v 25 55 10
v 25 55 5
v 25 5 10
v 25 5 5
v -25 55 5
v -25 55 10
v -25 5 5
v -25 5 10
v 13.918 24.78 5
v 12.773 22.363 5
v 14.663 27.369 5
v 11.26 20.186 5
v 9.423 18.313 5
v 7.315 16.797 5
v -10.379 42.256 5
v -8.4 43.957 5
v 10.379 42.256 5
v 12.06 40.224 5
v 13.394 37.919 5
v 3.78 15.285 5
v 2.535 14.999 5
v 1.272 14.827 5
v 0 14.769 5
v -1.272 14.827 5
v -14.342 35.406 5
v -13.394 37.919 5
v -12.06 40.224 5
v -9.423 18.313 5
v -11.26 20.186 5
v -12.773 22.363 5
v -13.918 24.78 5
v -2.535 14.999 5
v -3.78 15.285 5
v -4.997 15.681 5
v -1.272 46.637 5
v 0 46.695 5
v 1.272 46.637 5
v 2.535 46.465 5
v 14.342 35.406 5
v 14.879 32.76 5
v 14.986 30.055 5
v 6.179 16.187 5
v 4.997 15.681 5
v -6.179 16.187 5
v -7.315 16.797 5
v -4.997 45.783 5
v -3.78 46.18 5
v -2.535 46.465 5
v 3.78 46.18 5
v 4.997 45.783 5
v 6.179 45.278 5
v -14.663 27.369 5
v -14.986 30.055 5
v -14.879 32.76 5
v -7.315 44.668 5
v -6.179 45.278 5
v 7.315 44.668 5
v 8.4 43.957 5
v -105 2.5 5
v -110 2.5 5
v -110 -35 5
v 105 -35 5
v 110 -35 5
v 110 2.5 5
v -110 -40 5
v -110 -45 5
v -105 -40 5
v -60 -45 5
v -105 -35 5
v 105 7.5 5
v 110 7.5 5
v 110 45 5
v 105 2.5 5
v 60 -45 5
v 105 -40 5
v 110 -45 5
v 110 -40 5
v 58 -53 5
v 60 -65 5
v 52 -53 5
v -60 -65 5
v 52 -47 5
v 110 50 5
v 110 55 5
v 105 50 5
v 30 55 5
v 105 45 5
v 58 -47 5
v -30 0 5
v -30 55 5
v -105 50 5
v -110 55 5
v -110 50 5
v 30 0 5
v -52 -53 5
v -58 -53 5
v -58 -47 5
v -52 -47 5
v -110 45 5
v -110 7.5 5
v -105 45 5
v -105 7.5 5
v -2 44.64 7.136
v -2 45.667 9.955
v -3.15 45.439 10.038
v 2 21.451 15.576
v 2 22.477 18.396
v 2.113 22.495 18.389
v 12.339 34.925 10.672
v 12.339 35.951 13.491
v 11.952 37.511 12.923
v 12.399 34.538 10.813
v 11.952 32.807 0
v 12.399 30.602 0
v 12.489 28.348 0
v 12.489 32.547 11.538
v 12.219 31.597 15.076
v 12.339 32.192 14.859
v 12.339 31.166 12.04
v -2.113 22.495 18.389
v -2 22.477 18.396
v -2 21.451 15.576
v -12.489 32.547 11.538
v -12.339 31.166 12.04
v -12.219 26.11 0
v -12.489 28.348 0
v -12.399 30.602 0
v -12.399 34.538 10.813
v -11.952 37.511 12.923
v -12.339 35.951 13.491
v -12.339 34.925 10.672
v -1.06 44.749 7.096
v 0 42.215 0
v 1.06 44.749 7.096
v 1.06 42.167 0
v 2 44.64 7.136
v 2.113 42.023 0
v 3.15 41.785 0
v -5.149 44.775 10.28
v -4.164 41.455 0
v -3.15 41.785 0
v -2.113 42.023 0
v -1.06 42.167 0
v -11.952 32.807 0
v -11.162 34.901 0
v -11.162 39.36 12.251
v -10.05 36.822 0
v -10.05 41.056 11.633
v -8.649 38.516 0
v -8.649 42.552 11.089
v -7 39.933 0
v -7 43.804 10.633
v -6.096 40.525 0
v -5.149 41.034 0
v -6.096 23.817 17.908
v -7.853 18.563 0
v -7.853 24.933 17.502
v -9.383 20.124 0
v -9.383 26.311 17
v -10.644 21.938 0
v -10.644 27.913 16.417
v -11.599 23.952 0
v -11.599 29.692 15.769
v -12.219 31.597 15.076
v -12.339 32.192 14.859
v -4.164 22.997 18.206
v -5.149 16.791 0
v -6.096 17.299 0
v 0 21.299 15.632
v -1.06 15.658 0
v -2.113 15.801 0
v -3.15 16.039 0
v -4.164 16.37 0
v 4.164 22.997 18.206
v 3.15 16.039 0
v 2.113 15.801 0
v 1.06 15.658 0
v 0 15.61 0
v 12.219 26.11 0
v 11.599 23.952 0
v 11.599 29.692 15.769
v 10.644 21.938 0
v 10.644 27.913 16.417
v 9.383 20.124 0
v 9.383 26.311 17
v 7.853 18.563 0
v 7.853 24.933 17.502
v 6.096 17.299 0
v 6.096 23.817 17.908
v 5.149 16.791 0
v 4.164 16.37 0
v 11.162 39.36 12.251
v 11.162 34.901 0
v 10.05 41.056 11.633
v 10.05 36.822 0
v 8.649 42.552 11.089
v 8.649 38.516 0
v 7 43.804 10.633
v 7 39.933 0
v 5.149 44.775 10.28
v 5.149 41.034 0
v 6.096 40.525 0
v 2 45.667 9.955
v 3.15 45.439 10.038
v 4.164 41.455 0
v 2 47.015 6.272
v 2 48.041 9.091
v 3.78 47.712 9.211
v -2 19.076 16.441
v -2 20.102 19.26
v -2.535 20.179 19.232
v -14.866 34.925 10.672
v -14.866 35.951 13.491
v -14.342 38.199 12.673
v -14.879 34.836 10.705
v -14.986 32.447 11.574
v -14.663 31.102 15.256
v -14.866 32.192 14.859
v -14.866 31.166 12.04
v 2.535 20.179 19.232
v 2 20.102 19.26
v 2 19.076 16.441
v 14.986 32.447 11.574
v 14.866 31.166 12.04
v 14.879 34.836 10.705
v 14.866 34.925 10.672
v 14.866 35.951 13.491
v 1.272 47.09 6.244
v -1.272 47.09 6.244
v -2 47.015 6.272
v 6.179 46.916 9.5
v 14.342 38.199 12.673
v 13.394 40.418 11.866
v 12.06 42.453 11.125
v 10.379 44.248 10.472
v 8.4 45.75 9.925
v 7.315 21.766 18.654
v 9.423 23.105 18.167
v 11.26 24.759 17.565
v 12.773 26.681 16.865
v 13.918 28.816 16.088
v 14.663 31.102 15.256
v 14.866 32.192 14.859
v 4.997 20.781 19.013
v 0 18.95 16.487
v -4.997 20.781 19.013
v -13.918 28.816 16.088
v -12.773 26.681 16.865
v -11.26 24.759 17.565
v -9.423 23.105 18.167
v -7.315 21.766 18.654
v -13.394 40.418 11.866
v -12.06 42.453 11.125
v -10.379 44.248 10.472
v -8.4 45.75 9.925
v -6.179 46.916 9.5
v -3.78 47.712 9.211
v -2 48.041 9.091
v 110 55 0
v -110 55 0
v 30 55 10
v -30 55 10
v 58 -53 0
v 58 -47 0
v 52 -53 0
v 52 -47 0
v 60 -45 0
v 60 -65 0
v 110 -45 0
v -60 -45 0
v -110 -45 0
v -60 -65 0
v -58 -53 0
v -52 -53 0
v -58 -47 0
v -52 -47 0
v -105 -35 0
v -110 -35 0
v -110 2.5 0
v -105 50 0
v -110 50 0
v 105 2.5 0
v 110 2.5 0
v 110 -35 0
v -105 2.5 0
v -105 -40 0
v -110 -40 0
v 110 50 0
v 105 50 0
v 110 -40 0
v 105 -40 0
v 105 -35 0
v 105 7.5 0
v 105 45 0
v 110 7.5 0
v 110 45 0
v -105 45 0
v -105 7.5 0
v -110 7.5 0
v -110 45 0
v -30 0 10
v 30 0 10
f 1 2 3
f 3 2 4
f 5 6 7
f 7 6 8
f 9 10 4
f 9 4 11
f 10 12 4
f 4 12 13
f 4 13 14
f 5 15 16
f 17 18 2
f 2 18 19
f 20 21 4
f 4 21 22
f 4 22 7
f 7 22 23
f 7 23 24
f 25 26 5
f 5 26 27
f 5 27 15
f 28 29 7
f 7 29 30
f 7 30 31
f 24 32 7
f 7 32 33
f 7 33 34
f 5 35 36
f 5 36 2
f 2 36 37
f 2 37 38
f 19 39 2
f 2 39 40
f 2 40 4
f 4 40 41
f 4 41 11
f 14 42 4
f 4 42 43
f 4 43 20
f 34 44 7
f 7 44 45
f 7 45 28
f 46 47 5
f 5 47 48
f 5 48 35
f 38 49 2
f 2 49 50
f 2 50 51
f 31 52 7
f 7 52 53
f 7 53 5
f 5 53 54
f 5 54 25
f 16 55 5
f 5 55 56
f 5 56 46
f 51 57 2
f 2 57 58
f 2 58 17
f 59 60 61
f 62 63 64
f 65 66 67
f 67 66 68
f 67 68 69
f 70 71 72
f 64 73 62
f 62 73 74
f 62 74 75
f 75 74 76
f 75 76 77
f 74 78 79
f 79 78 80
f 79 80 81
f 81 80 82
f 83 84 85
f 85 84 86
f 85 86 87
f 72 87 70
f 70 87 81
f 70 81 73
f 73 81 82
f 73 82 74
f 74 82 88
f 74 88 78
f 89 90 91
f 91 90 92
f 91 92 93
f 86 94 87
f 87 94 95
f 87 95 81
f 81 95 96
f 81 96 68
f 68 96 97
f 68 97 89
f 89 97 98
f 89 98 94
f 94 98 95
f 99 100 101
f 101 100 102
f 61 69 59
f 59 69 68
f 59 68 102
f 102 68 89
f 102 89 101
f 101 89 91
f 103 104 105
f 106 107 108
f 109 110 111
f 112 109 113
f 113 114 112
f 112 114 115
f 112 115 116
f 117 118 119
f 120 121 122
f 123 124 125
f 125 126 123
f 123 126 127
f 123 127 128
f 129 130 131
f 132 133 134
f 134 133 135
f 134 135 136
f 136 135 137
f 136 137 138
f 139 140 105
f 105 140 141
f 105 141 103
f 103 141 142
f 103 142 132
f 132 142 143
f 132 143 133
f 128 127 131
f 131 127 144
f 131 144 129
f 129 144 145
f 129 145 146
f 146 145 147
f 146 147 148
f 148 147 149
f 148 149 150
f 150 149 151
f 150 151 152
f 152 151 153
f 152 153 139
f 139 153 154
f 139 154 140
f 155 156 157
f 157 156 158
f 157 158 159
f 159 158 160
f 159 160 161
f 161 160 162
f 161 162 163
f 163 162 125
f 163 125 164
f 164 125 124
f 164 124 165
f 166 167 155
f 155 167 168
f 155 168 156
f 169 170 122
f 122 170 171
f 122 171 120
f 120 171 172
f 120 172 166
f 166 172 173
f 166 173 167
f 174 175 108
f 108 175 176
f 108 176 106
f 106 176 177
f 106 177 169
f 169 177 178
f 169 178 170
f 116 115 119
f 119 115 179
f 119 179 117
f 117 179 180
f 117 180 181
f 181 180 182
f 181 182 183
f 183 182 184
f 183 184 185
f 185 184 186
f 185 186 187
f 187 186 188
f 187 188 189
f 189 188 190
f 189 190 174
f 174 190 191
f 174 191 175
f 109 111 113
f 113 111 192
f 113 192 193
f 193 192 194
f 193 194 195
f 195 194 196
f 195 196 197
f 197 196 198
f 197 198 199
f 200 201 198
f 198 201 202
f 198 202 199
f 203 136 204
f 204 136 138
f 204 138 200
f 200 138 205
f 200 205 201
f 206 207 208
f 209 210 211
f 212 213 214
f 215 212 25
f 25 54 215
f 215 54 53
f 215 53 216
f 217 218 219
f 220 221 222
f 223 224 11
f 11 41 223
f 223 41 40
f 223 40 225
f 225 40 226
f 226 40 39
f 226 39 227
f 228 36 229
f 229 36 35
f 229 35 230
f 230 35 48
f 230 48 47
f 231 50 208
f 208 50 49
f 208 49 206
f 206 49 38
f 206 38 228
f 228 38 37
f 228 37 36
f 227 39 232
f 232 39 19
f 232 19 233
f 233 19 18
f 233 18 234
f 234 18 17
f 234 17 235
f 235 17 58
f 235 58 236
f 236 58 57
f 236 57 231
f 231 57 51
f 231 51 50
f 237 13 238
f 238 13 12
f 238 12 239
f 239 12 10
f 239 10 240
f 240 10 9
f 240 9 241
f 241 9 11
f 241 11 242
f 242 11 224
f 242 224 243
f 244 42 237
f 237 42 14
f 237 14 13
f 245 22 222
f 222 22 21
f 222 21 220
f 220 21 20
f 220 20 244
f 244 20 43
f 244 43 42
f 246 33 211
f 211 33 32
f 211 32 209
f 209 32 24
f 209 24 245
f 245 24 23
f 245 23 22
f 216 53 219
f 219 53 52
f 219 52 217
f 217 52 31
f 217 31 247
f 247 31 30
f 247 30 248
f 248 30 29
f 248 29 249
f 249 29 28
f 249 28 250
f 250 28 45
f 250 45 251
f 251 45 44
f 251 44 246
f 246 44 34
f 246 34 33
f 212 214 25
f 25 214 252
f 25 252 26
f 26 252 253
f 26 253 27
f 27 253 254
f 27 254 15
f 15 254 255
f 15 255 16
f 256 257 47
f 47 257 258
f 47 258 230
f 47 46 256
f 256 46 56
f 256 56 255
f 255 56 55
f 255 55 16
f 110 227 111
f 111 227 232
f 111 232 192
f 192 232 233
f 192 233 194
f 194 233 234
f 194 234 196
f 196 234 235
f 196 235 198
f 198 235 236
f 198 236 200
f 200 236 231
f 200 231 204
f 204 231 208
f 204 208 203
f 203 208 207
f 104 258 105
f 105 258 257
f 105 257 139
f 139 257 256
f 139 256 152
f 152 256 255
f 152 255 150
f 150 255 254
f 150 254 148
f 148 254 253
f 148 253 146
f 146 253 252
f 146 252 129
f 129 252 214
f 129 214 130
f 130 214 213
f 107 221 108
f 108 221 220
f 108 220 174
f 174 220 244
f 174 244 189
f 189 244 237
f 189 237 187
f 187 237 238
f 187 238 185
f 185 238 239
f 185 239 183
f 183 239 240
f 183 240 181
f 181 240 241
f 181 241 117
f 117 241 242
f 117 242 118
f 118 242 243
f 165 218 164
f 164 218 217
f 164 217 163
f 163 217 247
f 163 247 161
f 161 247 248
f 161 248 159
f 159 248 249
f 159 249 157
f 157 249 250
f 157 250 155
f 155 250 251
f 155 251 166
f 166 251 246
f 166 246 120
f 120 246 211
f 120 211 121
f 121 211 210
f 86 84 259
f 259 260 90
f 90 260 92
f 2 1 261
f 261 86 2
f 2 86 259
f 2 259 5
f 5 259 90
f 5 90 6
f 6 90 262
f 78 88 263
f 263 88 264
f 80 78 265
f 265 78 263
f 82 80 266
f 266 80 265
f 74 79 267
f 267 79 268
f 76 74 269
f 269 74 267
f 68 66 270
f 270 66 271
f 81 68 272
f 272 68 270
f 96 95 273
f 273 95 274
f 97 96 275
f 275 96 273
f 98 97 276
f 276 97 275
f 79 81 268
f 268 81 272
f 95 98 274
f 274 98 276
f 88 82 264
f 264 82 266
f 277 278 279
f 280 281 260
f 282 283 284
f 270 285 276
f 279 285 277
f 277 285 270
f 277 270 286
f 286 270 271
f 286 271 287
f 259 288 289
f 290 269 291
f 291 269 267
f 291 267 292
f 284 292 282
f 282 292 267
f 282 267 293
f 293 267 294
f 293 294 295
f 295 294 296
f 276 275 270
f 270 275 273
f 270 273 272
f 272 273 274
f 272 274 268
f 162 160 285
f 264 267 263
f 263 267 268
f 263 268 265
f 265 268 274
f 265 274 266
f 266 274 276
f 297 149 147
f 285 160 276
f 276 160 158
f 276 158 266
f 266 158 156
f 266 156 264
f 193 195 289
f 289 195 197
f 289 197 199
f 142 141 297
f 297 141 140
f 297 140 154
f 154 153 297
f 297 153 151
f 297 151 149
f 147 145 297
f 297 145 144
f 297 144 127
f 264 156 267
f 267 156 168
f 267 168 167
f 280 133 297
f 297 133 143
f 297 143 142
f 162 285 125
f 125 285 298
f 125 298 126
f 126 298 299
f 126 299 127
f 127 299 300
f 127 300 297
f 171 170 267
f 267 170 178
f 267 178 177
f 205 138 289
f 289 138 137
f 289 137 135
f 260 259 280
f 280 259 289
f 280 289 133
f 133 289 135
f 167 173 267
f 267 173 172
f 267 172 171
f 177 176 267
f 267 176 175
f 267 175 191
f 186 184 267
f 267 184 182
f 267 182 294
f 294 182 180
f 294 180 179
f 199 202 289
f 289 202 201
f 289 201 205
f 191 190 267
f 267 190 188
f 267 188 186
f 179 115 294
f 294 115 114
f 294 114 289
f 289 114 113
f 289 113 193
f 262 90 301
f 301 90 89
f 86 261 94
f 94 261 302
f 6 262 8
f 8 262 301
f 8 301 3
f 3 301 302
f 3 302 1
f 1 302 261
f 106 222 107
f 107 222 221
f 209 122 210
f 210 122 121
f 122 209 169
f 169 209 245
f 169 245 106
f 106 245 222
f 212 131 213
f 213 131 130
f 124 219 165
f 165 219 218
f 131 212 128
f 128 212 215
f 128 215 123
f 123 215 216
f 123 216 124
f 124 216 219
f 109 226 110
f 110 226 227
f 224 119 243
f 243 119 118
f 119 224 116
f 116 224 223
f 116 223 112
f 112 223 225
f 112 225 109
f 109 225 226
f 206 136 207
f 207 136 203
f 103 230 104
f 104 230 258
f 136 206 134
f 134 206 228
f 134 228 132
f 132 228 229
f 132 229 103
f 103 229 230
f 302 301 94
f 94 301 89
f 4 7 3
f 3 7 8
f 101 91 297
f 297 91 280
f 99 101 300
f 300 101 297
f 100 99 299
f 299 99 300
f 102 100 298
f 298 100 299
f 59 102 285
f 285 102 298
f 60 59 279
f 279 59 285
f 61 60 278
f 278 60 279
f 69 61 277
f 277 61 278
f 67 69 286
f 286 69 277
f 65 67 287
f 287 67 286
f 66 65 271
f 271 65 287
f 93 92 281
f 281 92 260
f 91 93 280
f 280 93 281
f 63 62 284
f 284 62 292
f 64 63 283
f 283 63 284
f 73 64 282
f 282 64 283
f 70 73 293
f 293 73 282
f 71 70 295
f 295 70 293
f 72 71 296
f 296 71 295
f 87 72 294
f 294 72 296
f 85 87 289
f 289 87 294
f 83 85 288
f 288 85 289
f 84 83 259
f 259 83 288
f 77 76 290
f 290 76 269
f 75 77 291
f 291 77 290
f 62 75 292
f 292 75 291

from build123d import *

# Parameters (mm, degrees)
SKETCH2_W            = 6
SKETCH2_H            = 6
BOSS_EXTRUDE1_DEPTH  = 5
SKETCH3_W            = 200
SKETCH3_H            = 20
CUT_EXTRUDE1_DEPTH   = 5
SKETCH6_W            = 100
SKETCH6_H            = 20
BOSS_EXTRUDE2_DEPTH  = 100
BOSS_EXTRUDE3_DEPTH  = 100
CUT_EXTRUDE4_DEPTH   = 100
BOSS_EXTRUDE5_DEPTH  = 100
SKETCH14_R           = 12.5
CUT_EXTRUDE5_DEPTH   = 100
SKETCH15_R           = 15
SKETCH15_R_2         = 12.5
BOSS_EXTRUDE6_DEPTH  = 40
SKETCH16_W           = 50
SKETCH16_H           = 61.072294376
CUT_EXTRUDE10_DEPTH  = 35
SKETCH15_4_R         = 15
SKETCH15_4_R_2       = 12.5
CUT_EXTRUDE11_DEPTH  = 15
BOSS_EXTRUDE7_DEPTH  = 5
SKETCH23_R           = 15
SKETCH23_R_2         = 12.5
BOSS_EXTRUDE8_DEPTH  = 25
SKETCH21_W           = 50
SKETCH21_H           = 55
CUT_EXTRUDE12_DEPTH  = 35
SKETCH22_W           = 50
SKETCH22_H           = 55
BOSS_EXTRUDE9_DEPTH  = 5
SKETCH23_3_R         = 12.5
CUT_EXTRUDE13_DEPTH  = 20
CUT_EXTRUDE15_DEPTH  = 3
CUT_EXTRUDE16_DEPTH  = 5
SKETCH28_3_W         = 50
SKETCH28_3_H         = 5
BOSS_EXTRUDE12_DEPTH = 5
SKETCH30_W           = 200
SKETCH30_H           = 120
CUT_EXTRUDE17_DEPTH  = 100
BOSS_EXTRUDE13_DEPTH = 5


with BuildPart() as part:
    # Sketch2 → Boss-Extrude1 (new body)
    with BuildSketch(Plane.XY):
        Polygon((-100, 75), (-100, -45), (-60, -45), (-60, -65), (0, -65), (60, -65), (60, -45), (100, -45), (100, 75), align=None)
        with Locations((55, -50)):
            Rectangle(SKETCH2_W, SKETCH2_H, mode=Mode.SUBTRACT)
        with Locations((-55, -50)):
            Rectangle(SKETCH2_W, SKETCH2_H, mode=Mode.SUBTRACT)
    extrude(amount=BOSS_EXTRUDE1_DEPTH)

    # Sketch3 → Cut-Extrude1 (cut)
    with BuildSketch(Plane.XY.offset(5)):
        with Locations((0, 65)):
            Rectangle(SKETCH3_W, SKETCH3_H)
    extrude(amount=-CUT_EXTRUDE1_DEPTH, mode=Mode.SUBTRACT)

    # Sketch6 → Boss-Extrude2 (add)
    with BuildSketch(Plane(origin=(0, 0, 0), x_dir=(-1, 0, 0), z_dir=(0, 0, -1))):
        with Locations((0, -55)):
            Rectangle(SKETCH6_W, SKETCH6_H)
    extrude(amount=BOSS_EXTRUDE2_DEPTH)

    # Sketch8 → Boss-Extrude3 (add)
    with BuildSketch(Plane(origin=(50, 0, 0), x_dir=(0, 0, -1), z_dir=(1, 0, 0))):
        Polygon((42.17911114, -45), (100, -45), (100, 55), (78.57613456, 55), (63.797824283, 14.396926208), (60.37762285, 5), (56.957421417, -4.396926208), align=None)
    extrude(amount=-BOSS_EXTRUDE3_DEPTH)

    # Sketch12 → Cut-Extrude4 (cut)
    with BuildSketch(Plane(origin=(50, 0, 0), x_dir=(0, 0, -1), z_dir=(1, 0, 0))):
        Polygon((78.57613456, 55), (42.17911114, -45), (47.5, -45), (83.89702342, 55), align=None)
    extrude(amount=-CUT_EXTRUDE4_DEPTH, mode=Mode.SUBTRACT)

    # Sketch13 → Boss-Extrude5 (add)
    with BuildSketch(Plane(origin=(0, -20.530205756, -56.406276742), x_dir=(1, 0, 0), z_dir=(0, 0.34202014327073604, 0.9396926208059022))):
        with BuildLine():
            ThreePointArc((10, 27.168677492), (7.071067812, 34.239745304), (0, 37.168677492))
            ThreePointArc((0, 37.168677492), (-7.071067812, 20.09760968), (10, 27.168677492))
        make_face()
    extrude(amount=BOSS_EXTRUDE5_DEPTH)

    # Sketch14 → Cut-Extrude5 (cut)
    with BuildSketch(Plane(origin=(0, 13.671808571, 37.562985339), x_dir=(1, 0, 0), z_dir=(0, 0.3420201432707361, 0.9396926208059023))):
        with Locations((0, 27.168677492)):
            Circle(SKETCH14_R)
    extrude(amount=-CUT_EXTRUDE5_DEPTH, mode=Mode.SUBTRACT)

    # Sketch15 → Boss-Extrude6 (add)
    with BuildSketch(Plane(origin=(0, 13.671808571, 37.562985339), x_dir=(1, 0, 0), z_dir=(0, 0.3420201432707362, 0.9396926208059023))):
        with Locations((0, 27.168677492)):
            Circle(SKETCH15_R)
        with Locations((0, 27.168677492)):
            Circle(SKETCH15_R_2, mode=Mode.SUBTRACT)
    extrude(amount=-BOSS_EXTRUDE6_DEPTH)

    # Sketch16 → Cut-Extrude10 (cut)
    with BuildSketch(Plane(origin=(0, 0, -30), x_dir=(-1, 0, 0), z_dir=(0, 0, -1))):
        with Locations((0, 30.536147188)):
            Rectangle(SKETCH16_W, SKETCH16_H)
    extrude(amount=-CUT_EXTRUDE10_DEPTH, mode=Mode.SUBTRACT)


with BuildPart() as cut_extrude10_piece_1:
    # of the separate pieces the step leaves, piece 1, a body of its own (cut_extrude10_pieces)
    add(part.part.solids().sort_by_distance((-100, 55, 0))[0])

    # Sketch18 → Boss-Extrude7 (add)
    with BuildSketch(Plane.XY.offset(5)):
        Polygon((30, 55), (25, 55), (25, 0), (-25, 0), (-25, 55), (-30, 55), (-30, -5), (30, -5), (30, 0), align=None)
    extrude(amount=BOSS_EXTRUDE7_DEPTH)



with BuildPart() as cut_extrude10_piece_2:
    # of the separate pieces the step leaves, piece 2, a body of its own (cut_extrude10_pieces)
    add(part.part.solids().sort_by_distance((15, 39.202014327, 28.270750371))[0])

    # Sketch15<4> → Cut-Extrude11 (cut)
    with BuildSketch(Plane(origin=(0, 13.671808571, 37.562985339), x_dir=(1, 0, 0), z_dir=(0, 0.3420201432707362, 0.9396926208059023))):
        with Locations((0, 27.168677492)):
            Circle(SKETCH15_4_R)
        with Locations((0, 27.168677492)):
            Circle(SKETCH15_4_R_2, mode=Mode.SUBTRACT)
    extrude(amount=-CUT_EXTRUDE11_DEPTH, mode=Mode.SUBTRACT)

    # Sketch23 → Boss-Extrude8 (add)
    with BuildSketch(Plane(origin=(0, 8.541506422, 23.467596027), x_dir=(1, 0, 0), z_dir=(0, 0.34202014327073627, 0.9396926208059023))):
        with Locations((0, 27.168677492)):
            Circle(SKETCH23_R)
        with Locations((0, 27.168677492)):
            Circle(SKETCH23_R_2, mode=Mode.SUBTRACT)
    extrude(amount=-BOSS_EXTRUDE8_DEPTH)

    # Sketch21 → Cut-Extrude12 (cut)
    with BuildSketch(Plane(origin=(0, 0, -30), x_dir=(-1, 0, 0), z_dir=(0, 0, -1))):
        with Locations((0, 27.5)):
            Rectangle(SKETCH21_W, SKETCH21_H)
    extrude(amount=-CUT_EXTRUDE12_DEPTH, mode=Mode.SUBTRACT)


with BuildPart() as cut_extrude10_piece_1_1:
    add(cut_extrude10_piece_1.part)

    add(cut_extrude10_piece_2.part)  # Boss-Extrude9 merges Cut-Extrude10 piece 2
    # Sketch22 → Boss-Extrude9 (add)
    with BuildSketch(Plane(origin=(0, 0, 0), x_dir=(-1, 0, 0), z_dir=(0, 0, -1))):
        with Locations((0, 27.5)):
            Rectangle(SKETCH22_W, SKETCH22_H)
    extrude(amount=-BOSS_EXTRUDE9_DEPTH)

    # Sketch23<3> → Cut-Extrude13 (cut)
    with BuildSketch(Plane(origin=(0, 8.541506422, 23.467596027), x_dir=(1, 0, 0), z_dir=(0, 0.34202014327073627, 0.9396926208059023))):
        with Locations((0, 27.168677492)):
            Circle(SKETCH23_3_R)
    extrude(amount=-CUT_EXTRUDE13_DEPTH, mode=Mode.SUBTRACT)

    # Sketch27 → Cut-Extrude15 (cut)
    with BuildSketch(Plane(origin=(0, 8.541506422, 23.467596027), x_dir=(1, 0, 0), z_dir=(0, 0.34202014327073627, 0.9396926208059023))):
        with BuildLine():
            ThreePointArc((2, 42.034746239), (0, 42.168677492), (-2, 42.034746239))
            Line((-2, 42.034746239), (-2, 39.507640171))
            ThreePointArc((-2, 39.507640171), (0, 39.668677492), (2, 39.507640171))
            Line((2, 39.507640171), (2, 42.034746239))
        make_face()
        with BuildLine():
            Line((-12.338962679, 29.168677492), (-14.866068747, 29.168677492))
            ThreePointArc((-14.866068747, 29.168677492), (-15, 27.168677492), (-14.866068747, 25.168677492))
            Line((-14.866068747, 25.168677492), (-12.338962679, 25.168677492))
            ThreePointArc((-12.338962679, 25.168677492), (-12.5, 27.168677492), (-12.338962679, 29.168677492))
        make_face()
        with BuildLine():
            ThreePointArc((14.866068747, 25.168677492), (15, 27.168677492), (14.866068747, 29.168677492))
            Line((14.866068747, 29.168677492), (12.338962679, 29.168677492))
            ThreePointArc((12.338962679, 29.168677492), (12.5, 27.168677492), (12.338962679, 25.168677492))
            Line((12.338962679, 25.168677492), (14.866068747, 25.168677492))
        make_face()
        with BuildLine():
            ThreePointArc((2, 14.829714813), (0, 14.668677492), (-2, 14.829714813))
            Line((-2, 14.829714813), (-2, 12.302608744))
            ThreePointArc((-2, 12.302608744), (0, 12.168677492), (2, 12.302608744))
            Line((2, 12.302608744), (2, 14.829714813))
        make_face()
    extrude(amount=-CUT_EXTRUDE15_DEPTH, mode=Mode.SUBTRACT)

    # Sketch28 → Cut-Extrude16 (cut)
    with BuildSketch(Plane.XY.offset(10)):
        Polygon((25, 0), (-25, 0), (-30, 0), (-30, -5), (30, -5), (30, 0), align=None)
    extrude(amount=-CUT_EXTRUDE16_DEPTH, mode=Mode.SUBTRACT)

    # Sketch28<3> → Boss-Extrude12 (add)
    with BuildSketch(Plane.XY.offset(10)):
        with Locations((0, 2.5)):
            Rectangle(SKETCH28_3_W, SKETCH28_3_H)
    extrude(amount=-BOSS_EXTRUDE12_DEPTH)

    # Sketch30 → Cut-Extrude17 (cut)
    with BuildSketch(Plane(origin=(0, 0, -100), x_dir=(-1, 0, 0), z_dir=(0, 0, -1))):
        with Locations((0, -5)):
            Rectangle(SKETCH30_W, SKETCH30_H)
    extrude(amount=-CUT_EXTRUDE17_DEPTH, mode=Mode.SUBTRACT)

    # Sketch31 → Boss-Extrude13 (add)
    with BuildSketch(Plane(origin=(0, 0, 0), x_dir=(-1, 0, 0), z_dir=(0, 0, -1))):
        Polygon((110, 55), (100, 55), (100, -45), (110, -45), (110, -40), (105, -40), (105, -35), (110, -35), (110, 2.5), (105, 2.5), (105, 7.5), (110, 7.5), (110, 45), (105, 45), (105, 50), (110, 50), align=None)
        Polygon((-100, -45), (-100, 55), (-110, 55), (-110, 50), (-105, 50), (-105, 45), (-110, 45), (-110, 7.5), (-105, 7.5), (-105, 2.5), (-110, 2.5), (-110, -35), (-105, -35), (-105, -40), (-110, -40), (-110, -45), align=None)
    extrude(amount=-BOSS_EXTRUDE13_DEPTH)


solid = cut_extrude10_piece_1_1.part
